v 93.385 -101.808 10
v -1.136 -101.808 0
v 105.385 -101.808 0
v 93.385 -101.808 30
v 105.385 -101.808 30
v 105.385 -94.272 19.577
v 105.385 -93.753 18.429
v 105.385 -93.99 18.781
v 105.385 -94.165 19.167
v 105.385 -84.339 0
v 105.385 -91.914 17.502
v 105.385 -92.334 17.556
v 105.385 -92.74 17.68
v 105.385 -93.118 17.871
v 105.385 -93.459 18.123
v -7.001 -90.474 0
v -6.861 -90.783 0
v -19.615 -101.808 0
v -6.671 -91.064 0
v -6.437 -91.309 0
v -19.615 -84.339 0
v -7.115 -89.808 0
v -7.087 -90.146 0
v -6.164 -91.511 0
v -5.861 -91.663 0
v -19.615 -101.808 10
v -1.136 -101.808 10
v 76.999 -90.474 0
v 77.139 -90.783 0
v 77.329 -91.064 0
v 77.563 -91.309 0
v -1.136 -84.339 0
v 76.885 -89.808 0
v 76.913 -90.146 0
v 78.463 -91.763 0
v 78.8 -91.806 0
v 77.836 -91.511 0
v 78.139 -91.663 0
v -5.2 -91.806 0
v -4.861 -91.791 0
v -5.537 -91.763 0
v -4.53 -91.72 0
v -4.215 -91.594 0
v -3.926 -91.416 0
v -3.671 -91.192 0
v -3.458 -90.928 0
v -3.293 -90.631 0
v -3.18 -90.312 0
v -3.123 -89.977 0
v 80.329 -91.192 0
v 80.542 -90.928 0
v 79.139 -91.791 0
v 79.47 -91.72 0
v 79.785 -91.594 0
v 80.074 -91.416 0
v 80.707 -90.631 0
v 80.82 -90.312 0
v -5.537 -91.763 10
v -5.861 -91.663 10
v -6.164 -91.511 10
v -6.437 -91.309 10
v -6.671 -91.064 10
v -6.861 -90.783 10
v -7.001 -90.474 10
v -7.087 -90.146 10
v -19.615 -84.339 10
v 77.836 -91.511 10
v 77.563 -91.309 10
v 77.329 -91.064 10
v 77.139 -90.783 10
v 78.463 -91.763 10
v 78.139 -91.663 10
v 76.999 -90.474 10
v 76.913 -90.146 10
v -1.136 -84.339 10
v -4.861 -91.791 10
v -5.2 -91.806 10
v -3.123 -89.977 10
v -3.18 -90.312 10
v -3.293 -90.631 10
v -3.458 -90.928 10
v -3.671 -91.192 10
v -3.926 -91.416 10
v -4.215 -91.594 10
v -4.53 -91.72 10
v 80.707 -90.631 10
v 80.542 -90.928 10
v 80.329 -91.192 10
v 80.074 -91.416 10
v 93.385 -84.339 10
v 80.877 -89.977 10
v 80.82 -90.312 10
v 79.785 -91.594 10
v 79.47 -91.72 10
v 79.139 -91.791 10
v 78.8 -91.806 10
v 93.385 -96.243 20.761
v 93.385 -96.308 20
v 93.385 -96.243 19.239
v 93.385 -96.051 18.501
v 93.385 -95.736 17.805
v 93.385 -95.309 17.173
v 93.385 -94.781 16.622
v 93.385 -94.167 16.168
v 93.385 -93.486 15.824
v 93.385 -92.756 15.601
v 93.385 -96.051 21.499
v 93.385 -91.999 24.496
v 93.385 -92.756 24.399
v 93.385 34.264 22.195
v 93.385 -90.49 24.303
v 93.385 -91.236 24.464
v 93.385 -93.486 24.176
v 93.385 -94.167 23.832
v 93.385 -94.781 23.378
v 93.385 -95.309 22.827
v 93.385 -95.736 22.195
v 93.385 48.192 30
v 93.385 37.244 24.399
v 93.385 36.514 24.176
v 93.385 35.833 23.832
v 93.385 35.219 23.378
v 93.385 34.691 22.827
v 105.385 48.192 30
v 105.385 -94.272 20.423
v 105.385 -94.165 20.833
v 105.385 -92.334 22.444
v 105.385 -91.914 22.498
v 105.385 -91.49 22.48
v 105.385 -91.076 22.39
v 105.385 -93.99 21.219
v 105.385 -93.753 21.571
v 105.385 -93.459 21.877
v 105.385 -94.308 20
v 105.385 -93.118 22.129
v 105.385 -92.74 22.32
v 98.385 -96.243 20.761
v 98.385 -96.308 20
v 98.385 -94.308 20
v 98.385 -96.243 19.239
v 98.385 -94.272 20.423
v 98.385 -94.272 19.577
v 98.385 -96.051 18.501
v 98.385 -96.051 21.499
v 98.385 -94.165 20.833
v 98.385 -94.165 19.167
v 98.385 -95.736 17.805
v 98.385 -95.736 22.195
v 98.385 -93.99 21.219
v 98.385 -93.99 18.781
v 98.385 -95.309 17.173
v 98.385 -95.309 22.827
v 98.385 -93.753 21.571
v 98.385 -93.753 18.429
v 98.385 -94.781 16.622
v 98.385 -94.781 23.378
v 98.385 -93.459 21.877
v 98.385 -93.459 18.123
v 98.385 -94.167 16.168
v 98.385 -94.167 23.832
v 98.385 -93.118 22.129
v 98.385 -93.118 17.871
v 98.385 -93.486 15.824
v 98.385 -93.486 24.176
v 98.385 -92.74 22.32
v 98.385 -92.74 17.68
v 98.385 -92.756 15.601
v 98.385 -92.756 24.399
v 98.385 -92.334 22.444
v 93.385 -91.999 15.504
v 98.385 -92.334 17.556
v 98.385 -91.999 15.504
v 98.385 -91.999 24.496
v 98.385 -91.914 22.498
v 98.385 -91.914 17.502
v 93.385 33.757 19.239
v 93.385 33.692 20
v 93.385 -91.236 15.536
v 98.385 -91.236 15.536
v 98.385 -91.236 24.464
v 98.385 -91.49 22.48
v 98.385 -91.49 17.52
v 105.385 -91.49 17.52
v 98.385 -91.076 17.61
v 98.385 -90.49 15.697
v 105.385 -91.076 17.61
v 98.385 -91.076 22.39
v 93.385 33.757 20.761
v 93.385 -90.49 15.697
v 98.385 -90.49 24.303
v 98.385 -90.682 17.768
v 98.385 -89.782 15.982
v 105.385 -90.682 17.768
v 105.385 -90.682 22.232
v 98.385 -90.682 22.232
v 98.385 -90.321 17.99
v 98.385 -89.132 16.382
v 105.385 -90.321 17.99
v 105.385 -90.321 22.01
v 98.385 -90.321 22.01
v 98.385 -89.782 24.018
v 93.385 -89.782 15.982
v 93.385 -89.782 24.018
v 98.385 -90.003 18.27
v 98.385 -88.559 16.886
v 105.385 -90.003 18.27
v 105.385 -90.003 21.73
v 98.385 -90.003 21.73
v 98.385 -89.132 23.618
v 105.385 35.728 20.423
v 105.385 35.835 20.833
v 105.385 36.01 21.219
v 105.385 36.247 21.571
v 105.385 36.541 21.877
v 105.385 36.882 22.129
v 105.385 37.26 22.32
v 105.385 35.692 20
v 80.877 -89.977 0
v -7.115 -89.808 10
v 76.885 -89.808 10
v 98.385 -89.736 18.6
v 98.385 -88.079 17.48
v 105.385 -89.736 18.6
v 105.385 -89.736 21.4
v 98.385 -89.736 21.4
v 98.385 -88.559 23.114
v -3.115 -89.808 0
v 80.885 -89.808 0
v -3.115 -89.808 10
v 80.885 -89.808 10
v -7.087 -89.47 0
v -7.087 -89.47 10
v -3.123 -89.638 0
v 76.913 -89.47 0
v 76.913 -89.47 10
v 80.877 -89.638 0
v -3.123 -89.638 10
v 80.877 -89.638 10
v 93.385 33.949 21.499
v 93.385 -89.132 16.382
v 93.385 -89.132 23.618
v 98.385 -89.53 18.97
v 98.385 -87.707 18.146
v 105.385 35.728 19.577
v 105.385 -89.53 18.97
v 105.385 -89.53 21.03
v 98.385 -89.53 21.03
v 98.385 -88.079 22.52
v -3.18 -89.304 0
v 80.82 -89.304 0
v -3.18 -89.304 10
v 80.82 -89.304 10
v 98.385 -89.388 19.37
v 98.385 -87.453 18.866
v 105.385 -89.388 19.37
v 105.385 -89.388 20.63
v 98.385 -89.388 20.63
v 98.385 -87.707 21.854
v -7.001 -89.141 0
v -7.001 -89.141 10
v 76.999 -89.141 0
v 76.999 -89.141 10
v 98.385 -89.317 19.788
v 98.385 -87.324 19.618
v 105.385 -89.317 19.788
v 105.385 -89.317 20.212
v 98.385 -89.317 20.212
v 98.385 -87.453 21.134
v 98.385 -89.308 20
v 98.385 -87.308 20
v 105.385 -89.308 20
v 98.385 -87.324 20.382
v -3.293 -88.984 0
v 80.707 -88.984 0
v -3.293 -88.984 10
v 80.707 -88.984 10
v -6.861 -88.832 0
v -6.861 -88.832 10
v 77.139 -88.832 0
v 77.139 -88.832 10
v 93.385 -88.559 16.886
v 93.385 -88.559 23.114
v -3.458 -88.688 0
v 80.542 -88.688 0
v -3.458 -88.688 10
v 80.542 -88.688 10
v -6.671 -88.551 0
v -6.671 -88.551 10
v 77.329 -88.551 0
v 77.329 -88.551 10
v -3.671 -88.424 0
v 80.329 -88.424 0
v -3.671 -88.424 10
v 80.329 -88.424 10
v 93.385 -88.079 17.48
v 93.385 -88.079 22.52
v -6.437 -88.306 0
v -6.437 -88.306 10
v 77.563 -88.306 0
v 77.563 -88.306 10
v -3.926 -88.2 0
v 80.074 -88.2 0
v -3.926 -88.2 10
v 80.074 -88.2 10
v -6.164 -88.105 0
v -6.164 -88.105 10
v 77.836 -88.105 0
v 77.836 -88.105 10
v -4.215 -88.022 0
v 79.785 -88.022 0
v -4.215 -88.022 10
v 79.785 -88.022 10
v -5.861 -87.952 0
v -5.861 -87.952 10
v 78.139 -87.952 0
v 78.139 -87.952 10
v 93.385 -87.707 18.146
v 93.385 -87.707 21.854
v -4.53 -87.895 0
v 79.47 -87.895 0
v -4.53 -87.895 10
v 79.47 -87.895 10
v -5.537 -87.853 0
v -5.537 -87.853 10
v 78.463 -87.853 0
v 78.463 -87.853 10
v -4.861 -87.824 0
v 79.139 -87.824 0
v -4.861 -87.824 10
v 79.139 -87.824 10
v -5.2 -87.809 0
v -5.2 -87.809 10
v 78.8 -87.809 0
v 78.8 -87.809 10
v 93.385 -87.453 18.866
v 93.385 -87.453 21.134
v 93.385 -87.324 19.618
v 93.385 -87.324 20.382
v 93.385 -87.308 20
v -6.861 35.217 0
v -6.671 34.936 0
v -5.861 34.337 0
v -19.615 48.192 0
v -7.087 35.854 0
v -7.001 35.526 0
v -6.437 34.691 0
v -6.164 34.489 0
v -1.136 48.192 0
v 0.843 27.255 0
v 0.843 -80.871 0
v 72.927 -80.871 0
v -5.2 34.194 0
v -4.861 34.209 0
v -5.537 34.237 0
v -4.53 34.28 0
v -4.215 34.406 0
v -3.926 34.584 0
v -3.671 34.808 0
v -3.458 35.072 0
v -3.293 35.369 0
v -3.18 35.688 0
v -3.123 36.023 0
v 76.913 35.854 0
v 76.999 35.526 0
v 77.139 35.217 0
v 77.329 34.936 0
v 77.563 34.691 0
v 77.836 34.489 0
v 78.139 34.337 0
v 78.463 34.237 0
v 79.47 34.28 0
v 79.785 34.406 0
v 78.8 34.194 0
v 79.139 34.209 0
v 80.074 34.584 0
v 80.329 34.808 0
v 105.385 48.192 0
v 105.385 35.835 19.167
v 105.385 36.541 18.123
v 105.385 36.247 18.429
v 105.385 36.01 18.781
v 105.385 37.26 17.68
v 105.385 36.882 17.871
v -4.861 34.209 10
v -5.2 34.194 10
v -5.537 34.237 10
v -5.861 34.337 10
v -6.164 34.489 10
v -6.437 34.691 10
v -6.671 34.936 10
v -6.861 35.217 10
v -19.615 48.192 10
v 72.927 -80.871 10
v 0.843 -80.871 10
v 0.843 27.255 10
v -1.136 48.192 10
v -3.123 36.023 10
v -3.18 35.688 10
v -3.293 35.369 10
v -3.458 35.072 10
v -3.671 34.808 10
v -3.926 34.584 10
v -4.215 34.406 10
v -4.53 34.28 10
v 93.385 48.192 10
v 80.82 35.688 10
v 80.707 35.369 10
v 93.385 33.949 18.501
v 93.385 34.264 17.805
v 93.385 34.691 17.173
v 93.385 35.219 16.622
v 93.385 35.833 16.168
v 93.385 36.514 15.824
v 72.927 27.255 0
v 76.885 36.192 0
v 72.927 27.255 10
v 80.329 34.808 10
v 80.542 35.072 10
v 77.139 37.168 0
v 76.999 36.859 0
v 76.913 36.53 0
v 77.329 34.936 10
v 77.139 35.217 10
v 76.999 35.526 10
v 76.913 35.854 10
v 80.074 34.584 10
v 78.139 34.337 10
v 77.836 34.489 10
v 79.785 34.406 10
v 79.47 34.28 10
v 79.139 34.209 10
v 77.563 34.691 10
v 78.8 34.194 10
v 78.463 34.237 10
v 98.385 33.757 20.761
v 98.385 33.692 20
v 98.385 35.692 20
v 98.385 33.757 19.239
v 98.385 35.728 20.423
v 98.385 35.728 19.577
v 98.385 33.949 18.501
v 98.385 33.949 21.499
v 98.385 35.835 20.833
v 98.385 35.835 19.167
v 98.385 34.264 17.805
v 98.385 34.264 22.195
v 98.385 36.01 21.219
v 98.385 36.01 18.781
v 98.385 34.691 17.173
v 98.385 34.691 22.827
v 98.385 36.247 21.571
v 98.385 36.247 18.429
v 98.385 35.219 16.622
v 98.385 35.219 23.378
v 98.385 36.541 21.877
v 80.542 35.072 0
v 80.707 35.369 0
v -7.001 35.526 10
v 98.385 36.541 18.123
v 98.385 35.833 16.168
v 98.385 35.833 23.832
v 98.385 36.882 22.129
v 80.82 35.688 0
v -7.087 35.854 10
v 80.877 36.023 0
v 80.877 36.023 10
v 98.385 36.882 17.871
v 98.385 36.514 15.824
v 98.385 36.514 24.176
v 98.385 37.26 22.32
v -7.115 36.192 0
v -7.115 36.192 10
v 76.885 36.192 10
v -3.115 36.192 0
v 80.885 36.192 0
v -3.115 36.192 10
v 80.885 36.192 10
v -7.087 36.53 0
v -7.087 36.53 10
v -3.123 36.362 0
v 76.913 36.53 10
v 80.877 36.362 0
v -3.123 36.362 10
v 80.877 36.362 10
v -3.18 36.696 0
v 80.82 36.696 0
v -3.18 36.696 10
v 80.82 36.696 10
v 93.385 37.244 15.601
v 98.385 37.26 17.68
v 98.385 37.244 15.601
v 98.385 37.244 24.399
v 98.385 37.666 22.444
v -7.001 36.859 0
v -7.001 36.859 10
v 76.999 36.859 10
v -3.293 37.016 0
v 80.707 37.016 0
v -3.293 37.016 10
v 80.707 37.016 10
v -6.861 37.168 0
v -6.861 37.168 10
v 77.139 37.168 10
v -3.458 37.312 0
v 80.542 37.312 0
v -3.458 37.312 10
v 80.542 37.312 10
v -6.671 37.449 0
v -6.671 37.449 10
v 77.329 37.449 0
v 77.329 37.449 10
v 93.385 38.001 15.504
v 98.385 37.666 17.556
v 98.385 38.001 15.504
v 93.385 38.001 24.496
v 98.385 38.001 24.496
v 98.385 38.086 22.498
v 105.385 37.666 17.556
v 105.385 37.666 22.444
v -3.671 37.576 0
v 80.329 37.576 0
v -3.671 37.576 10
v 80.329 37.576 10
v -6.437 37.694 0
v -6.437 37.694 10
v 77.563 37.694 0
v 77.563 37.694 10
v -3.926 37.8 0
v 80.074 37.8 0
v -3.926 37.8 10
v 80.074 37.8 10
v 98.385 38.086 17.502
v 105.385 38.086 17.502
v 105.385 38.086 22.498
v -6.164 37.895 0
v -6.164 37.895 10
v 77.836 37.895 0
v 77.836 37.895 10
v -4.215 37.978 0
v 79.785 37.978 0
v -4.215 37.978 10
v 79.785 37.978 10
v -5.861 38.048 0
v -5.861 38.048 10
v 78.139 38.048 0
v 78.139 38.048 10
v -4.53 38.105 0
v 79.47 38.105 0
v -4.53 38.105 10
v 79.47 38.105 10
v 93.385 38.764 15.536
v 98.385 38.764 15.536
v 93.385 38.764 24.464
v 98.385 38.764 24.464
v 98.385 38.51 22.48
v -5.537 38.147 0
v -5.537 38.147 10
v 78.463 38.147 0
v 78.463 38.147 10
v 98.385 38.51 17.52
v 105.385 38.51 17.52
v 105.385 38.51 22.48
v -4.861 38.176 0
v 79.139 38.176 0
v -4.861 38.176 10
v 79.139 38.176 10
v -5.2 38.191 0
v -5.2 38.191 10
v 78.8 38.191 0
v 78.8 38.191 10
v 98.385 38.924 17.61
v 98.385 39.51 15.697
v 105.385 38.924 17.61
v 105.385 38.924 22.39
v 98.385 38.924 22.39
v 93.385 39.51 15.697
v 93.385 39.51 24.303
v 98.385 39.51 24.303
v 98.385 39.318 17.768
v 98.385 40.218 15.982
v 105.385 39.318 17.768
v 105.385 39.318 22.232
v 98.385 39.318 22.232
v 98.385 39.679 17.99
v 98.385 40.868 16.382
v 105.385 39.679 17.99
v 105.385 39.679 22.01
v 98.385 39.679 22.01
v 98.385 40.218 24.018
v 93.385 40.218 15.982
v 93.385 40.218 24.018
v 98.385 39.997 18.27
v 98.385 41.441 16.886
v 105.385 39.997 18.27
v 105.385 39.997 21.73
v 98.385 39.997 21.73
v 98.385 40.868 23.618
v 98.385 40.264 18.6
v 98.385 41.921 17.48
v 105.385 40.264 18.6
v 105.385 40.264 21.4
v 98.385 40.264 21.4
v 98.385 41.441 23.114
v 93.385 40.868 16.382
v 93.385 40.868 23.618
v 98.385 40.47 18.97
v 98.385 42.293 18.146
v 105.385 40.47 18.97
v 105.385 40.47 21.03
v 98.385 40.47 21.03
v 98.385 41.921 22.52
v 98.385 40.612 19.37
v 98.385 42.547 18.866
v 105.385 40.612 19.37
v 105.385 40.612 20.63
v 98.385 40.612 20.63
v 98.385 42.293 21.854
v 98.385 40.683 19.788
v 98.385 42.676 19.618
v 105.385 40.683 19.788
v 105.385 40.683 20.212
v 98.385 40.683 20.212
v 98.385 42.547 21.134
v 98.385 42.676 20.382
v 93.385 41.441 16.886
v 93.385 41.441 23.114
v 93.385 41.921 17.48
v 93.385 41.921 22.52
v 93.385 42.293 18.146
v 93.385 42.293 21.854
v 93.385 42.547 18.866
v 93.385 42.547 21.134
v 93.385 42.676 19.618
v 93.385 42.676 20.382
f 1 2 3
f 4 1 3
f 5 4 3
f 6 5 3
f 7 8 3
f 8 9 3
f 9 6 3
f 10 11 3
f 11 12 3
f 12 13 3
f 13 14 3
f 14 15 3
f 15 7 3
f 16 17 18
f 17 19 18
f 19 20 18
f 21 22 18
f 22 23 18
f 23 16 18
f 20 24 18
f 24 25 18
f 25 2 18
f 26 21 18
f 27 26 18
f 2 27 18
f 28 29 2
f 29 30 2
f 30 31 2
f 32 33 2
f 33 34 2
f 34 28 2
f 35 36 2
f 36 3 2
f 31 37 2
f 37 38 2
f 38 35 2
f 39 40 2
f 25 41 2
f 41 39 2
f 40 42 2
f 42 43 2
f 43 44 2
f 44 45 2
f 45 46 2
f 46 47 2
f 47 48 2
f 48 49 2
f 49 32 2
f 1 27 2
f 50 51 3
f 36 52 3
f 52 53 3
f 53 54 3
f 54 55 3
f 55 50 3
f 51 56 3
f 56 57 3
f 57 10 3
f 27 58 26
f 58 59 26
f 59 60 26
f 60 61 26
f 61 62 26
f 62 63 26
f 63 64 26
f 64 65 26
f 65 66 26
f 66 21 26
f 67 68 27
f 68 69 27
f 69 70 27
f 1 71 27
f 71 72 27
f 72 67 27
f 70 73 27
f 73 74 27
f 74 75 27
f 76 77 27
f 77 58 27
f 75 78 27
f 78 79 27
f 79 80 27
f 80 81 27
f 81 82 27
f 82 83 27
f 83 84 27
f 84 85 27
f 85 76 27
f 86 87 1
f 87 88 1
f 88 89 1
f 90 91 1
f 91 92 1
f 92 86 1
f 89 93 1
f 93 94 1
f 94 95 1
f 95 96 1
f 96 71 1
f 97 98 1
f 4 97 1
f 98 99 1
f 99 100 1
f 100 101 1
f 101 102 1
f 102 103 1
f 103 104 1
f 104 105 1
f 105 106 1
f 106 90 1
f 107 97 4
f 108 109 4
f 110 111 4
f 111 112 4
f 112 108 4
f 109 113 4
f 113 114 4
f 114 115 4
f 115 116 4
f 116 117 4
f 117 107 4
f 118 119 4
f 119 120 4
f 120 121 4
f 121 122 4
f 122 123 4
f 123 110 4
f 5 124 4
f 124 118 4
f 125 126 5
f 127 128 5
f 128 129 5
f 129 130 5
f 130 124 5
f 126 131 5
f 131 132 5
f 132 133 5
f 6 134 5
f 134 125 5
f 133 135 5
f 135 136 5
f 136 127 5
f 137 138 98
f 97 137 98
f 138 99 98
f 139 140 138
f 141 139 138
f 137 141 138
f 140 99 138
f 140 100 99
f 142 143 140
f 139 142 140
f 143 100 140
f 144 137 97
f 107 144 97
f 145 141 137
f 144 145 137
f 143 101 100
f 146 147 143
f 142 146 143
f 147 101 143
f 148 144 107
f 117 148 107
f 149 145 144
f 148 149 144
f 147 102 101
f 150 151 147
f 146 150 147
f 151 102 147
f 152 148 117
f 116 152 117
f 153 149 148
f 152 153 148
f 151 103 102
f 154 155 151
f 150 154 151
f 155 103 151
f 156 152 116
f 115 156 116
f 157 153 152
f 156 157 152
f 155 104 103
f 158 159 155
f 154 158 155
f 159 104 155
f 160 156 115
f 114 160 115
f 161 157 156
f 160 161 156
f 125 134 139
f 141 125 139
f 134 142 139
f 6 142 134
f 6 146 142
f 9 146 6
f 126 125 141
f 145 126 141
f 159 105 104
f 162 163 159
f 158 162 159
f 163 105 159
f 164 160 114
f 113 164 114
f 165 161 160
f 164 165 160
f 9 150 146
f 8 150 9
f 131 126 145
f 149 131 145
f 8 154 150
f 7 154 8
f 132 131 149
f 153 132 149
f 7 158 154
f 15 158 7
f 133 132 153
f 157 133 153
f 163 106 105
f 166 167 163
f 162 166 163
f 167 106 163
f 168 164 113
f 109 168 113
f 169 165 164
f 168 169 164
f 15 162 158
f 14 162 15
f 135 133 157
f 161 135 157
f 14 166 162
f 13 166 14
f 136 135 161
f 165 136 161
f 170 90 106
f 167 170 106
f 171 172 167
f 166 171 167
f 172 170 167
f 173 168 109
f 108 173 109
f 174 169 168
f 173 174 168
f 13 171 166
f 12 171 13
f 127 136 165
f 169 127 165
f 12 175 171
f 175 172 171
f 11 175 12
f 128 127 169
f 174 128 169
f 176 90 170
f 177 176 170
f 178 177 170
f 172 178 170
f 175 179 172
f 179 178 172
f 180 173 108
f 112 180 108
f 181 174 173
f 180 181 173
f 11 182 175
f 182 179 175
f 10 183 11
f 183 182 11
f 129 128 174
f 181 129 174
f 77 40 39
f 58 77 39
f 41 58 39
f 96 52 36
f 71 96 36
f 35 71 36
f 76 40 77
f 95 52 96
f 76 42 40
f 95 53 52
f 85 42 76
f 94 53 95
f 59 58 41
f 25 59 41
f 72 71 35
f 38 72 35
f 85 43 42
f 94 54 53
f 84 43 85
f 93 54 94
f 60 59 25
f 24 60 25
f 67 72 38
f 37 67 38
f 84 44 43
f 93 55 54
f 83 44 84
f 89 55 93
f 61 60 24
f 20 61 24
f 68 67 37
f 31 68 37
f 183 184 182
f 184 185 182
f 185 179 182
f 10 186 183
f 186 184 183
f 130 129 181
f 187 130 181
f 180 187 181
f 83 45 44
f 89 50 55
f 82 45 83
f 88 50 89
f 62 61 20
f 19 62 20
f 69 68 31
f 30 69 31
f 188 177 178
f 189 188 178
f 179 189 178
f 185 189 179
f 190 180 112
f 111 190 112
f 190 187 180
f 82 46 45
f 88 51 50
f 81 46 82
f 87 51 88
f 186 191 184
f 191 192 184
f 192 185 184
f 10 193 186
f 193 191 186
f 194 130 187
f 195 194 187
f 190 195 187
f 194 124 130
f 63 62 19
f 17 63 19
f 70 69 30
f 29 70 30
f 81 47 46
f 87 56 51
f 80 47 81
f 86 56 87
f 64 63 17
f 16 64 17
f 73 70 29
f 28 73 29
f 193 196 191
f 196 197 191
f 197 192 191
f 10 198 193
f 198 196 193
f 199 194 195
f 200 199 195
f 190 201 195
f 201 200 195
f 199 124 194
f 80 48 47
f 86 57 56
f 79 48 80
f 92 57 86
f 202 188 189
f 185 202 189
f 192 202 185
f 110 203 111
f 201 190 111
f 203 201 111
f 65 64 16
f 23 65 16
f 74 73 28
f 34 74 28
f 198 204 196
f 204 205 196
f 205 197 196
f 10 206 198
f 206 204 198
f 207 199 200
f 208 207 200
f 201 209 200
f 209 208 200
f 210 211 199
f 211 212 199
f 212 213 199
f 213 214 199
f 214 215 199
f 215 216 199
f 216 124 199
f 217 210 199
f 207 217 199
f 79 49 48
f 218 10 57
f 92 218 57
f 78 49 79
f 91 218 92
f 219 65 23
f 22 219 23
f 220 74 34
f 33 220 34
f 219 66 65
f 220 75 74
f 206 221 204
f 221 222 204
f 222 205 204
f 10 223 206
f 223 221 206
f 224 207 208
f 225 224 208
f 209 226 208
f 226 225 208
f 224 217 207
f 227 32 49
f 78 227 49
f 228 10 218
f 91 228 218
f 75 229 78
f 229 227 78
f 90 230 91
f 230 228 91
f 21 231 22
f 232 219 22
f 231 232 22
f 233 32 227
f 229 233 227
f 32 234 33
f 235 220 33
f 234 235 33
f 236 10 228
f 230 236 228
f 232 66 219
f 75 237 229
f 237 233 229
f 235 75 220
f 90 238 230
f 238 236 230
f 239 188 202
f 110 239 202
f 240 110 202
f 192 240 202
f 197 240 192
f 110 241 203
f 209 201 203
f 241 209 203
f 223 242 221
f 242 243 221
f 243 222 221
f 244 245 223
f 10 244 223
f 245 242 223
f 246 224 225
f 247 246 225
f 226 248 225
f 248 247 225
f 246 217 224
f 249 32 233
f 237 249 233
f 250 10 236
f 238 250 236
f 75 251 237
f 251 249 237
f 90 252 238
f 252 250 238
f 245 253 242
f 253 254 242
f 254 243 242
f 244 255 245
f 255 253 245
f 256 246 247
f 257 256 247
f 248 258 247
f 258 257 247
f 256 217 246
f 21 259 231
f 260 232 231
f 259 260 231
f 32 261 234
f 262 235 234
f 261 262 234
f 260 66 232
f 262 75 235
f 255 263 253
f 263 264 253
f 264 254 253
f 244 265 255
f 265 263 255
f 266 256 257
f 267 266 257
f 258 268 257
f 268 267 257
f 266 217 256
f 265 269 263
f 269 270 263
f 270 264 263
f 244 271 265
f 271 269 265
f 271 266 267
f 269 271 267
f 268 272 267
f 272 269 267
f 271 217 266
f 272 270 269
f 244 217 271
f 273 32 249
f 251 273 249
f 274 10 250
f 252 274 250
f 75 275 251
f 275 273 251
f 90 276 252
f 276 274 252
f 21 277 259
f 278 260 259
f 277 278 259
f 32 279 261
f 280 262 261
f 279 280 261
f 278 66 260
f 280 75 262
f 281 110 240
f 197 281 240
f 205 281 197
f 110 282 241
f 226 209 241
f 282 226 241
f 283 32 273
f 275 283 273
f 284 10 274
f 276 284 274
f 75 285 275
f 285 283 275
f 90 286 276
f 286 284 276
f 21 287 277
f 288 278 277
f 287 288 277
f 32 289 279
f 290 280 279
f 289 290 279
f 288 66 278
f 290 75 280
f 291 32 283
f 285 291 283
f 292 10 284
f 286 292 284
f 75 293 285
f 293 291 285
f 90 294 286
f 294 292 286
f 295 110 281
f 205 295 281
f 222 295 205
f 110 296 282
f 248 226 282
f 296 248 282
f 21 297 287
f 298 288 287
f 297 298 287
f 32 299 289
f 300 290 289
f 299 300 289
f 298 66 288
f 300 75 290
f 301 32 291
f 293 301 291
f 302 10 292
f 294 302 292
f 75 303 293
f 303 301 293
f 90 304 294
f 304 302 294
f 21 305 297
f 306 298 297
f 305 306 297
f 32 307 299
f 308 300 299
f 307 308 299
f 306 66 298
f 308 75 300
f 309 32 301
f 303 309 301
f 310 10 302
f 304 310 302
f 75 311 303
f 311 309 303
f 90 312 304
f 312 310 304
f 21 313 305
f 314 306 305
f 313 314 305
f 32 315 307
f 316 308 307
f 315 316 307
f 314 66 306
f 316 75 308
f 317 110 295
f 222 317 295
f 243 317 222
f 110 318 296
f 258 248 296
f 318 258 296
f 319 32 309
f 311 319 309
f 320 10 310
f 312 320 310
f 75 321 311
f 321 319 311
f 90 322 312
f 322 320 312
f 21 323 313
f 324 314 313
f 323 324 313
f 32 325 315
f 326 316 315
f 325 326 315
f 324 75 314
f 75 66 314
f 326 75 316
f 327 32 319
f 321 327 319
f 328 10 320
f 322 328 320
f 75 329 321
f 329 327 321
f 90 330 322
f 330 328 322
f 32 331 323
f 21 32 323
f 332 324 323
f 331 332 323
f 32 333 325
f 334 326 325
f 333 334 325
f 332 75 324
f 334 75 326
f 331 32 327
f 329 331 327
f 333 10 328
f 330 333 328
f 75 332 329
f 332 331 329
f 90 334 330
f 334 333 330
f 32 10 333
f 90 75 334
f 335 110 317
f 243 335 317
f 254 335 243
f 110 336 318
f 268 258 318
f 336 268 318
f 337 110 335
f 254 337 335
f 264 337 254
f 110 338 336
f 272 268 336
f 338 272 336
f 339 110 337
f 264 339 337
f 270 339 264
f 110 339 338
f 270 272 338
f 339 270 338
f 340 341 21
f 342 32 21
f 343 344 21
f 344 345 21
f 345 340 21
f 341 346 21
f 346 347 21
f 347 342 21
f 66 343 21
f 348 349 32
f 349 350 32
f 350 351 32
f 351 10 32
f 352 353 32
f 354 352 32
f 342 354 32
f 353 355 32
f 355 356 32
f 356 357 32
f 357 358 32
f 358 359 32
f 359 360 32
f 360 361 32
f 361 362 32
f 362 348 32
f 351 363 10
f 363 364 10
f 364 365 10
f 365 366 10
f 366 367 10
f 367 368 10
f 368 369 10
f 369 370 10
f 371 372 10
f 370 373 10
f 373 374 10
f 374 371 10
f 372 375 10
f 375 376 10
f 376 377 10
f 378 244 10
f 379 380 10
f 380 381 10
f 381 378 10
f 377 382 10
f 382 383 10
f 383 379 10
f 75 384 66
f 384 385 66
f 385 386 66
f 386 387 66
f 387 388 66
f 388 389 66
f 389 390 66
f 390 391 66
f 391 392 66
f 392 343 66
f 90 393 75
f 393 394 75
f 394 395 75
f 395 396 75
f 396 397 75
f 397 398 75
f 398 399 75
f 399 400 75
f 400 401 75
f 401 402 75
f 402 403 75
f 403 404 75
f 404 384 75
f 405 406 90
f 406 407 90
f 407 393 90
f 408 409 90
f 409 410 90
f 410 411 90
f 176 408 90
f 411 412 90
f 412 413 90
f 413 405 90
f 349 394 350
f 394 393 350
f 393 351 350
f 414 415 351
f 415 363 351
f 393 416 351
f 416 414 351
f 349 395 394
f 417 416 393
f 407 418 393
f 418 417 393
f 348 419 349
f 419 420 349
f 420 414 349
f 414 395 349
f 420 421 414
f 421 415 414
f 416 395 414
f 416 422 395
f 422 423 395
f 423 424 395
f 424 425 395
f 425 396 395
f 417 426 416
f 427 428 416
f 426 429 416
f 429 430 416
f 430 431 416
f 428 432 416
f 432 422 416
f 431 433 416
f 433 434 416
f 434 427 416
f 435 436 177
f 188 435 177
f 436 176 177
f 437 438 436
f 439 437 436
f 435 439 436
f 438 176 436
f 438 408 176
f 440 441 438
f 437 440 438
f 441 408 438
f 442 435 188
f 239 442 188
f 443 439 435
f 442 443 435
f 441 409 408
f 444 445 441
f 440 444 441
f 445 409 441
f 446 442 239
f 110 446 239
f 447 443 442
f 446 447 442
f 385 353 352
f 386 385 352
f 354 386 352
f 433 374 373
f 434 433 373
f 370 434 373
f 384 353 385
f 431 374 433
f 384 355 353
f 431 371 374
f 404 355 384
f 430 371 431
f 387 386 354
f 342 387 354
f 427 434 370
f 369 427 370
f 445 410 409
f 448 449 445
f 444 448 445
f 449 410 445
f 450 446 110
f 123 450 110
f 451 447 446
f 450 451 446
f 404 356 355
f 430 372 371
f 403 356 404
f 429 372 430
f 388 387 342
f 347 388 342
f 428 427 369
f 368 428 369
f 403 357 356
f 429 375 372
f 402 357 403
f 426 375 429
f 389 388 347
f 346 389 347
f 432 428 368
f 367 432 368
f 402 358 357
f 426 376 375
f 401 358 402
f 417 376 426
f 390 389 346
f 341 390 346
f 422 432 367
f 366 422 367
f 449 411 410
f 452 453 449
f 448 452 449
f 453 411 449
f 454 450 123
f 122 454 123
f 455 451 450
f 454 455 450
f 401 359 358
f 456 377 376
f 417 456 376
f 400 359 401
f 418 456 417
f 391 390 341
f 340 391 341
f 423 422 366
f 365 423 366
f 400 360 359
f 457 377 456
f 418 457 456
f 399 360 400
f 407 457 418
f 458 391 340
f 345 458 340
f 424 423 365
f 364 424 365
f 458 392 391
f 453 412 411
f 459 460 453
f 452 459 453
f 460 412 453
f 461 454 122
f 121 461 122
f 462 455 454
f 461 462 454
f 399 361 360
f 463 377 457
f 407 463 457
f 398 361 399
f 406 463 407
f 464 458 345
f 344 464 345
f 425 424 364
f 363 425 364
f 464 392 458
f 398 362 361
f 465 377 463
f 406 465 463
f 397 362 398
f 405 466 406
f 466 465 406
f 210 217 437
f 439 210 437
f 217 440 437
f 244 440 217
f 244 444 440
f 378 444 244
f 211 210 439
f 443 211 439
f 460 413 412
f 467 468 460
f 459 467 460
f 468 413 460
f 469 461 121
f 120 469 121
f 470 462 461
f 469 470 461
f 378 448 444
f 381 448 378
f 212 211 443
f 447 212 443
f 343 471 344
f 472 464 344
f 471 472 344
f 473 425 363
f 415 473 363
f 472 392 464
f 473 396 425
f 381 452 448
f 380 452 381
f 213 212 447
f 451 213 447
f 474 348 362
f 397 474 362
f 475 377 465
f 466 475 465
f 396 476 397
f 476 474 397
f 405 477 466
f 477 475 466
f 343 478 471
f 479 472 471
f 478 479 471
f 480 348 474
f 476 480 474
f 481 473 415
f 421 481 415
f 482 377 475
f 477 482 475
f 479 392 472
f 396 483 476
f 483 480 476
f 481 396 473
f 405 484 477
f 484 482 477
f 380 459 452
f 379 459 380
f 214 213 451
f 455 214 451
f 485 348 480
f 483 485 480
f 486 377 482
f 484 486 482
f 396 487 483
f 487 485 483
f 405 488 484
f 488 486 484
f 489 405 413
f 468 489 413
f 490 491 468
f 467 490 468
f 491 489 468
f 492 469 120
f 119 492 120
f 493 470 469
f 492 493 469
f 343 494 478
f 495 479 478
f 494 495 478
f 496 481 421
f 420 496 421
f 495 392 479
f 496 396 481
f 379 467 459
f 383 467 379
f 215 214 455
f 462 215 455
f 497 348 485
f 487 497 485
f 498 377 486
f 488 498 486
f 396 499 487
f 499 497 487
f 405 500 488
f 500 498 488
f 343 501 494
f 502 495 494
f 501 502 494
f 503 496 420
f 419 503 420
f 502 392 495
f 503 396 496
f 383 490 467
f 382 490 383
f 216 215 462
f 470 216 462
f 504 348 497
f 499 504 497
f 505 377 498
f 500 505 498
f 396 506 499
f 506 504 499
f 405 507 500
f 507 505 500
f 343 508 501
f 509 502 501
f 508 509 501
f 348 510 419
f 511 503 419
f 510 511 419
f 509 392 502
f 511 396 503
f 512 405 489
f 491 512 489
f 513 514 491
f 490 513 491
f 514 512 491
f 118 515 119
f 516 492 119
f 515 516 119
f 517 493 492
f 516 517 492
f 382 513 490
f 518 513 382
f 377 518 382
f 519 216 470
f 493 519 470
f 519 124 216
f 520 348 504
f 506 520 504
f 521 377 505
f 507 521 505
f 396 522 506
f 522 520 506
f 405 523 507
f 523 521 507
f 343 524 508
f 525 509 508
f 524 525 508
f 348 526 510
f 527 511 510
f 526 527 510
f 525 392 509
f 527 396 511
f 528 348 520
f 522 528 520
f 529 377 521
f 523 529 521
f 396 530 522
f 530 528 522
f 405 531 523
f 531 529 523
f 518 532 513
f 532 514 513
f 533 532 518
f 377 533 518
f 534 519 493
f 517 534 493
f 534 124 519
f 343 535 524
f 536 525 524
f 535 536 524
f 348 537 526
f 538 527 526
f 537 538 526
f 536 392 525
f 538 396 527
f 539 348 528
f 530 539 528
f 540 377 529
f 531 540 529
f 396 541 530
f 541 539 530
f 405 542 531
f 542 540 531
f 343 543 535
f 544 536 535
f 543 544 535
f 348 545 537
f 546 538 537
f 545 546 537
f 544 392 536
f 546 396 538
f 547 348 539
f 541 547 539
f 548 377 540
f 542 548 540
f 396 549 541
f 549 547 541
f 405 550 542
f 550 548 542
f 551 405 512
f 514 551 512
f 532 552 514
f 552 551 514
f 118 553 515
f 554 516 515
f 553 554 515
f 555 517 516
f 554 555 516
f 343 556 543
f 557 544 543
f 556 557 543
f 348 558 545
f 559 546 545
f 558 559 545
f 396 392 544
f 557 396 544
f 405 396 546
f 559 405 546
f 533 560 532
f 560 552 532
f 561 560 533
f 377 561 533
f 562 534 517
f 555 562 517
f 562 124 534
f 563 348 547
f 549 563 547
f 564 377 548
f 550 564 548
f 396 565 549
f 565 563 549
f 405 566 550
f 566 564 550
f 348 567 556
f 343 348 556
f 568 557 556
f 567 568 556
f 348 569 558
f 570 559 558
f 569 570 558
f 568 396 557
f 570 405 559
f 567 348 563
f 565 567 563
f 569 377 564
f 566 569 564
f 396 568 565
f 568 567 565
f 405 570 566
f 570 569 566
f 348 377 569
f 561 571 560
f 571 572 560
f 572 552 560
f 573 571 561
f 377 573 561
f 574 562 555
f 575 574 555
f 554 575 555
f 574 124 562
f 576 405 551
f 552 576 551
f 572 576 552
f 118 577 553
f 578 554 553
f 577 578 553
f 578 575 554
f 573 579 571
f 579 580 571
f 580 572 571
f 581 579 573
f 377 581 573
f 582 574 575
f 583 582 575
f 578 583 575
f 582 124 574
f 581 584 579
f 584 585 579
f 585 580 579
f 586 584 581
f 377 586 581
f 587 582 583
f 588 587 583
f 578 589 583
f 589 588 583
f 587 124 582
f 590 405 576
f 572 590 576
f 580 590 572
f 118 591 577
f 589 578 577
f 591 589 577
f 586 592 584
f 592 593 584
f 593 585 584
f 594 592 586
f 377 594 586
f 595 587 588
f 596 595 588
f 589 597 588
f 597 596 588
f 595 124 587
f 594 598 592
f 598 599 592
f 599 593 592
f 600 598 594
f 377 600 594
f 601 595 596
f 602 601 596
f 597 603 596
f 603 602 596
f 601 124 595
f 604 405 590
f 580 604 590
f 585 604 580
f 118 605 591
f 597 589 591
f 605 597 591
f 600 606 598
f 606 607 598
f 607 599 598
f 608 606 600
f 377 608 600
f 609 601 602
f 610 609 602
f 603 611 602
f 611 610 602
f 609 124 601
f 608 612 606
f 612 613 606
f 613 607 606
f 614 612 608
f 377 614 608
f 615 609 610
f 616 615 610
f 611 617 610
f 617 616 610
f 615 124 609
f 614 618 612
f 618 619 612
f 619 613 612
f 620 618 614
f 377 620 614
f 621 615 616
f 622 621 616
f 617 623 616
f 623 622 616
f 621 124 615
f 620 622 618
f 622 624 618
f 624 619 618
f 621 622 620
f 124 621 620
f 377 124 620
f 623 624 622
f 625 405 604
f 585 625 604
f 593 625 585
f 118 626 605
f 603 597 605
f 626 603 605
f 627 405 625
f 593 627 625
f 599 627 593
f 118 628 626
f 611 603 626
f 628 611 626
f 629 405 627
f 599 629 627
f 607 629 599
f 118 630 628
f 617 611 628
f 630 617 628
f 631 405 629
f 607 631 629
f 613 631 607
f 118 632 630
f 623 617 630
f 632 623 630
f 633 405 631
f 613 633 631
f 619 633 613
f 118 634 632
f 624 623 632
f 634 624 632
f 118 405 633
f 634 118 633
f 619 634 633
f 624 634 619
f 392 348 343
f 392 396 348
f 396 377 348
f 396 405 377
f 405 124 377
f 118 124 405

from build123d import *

# Parameters (mm, degrees)
SKETCH_1_W          = 113
SKETCH_1_H          = 150
SKETCH_1_R          = 2
SKETCH_1_W_2        = 72.084054685
SKETCH_1_H_2        = 108.126082027
EXTRUDE_1_DEPTH     = 10
SKETCH_2_W          = 30
SKETCH_2_H          = 150
EXTRUDE_2_DEPTH     = 12
SKETCH_3_R          = 2.5
CUT_EXTRUDE_2_DEPTH = 12
SKETCH_6_R          = 4.5
CUT_EXTRUDE_5_DEPTH = 5


with BuildPart() as part:
    # 草图1 → 凸台-拉伸1 (new body)
    with BuildSketch(Plane.XY):
        with Locations((36.884615385, -26.807692308)):
            Rectangle(SKETCH_1_W, SKETCH_1_H)
        with Locations((78.884615385, 36.192307692)):
            Circle(SKETCH_1_R, mode=Mode.SUBTRACT)
        with Locations((-5.115384615, 36.192307692)):
            Circle(SKETCH_1_R, mode=Mode.SUBTRACT)
        with Locations((78.884615385, -89.807692308)):
            Circle(SKETCH_1_R, mode=Mode.SUBTRACT)
        with Locations((-5.115384615, -89.807692308)):
            Circle(SKETCH_1_R, mode=Mode.SUBTRACT)
        with Locations((36.884615385, -26.807692307)):
            Rectangle(SKETCH_1_W_2, SKETCH_1_H_2, mode=Mode.SUBTRACT)
    extrude(amount=EXTRUDE_1_DEPTH)

    # 草图2 → 凸台-拉伸2 (add)
    with BuildSketch(Plane(origin=(93.384615385, 0, 0), x_dir=(0, 0, -1), z_dir=(1, 0, 0))):
        with Locations((-15, -26.807692308)):
            Rectangle(SKETCH_2_W, SKETCH_2_H)
    extrude(amount=EXTRUDE_2_DEPTH)

    # 草图3 → 切除-拉伸2 (cut)
    with BuildSketch(Plane.ZY.offset(-93.384615385)):
        with Locations(Location((20, 38.192307692, 0), (0, 0, 270))):
            Circle(SKETCH_3_R)
        with Locations(Location((20, -91.807692308, 0), (0, 0, 90))):
            Circle(SKETCH_3_R)
    extrude(amount=-CUT_EXTRUDE_2_DEPTH, mode=Mode.SUBTRACT)

    # 草图6 → 切除-拉伸5 (cut)
    with BuildSketch(Plane.ZY.offset(-93.384615385)):
        with Locations(Location((20, 38.192307692, 0), (0, 0, 270))):
            Circle(SKETCH_6_R)
        with Locations(Location((20, -91.807692308, 0), (0, 0, 90))):
            Circle(SKETCH_6_R)
    extrude(amount=-CUT_EXTRUDE_5_DEPTH, mode=Mode.SUBTRACT)


solid = part.part
